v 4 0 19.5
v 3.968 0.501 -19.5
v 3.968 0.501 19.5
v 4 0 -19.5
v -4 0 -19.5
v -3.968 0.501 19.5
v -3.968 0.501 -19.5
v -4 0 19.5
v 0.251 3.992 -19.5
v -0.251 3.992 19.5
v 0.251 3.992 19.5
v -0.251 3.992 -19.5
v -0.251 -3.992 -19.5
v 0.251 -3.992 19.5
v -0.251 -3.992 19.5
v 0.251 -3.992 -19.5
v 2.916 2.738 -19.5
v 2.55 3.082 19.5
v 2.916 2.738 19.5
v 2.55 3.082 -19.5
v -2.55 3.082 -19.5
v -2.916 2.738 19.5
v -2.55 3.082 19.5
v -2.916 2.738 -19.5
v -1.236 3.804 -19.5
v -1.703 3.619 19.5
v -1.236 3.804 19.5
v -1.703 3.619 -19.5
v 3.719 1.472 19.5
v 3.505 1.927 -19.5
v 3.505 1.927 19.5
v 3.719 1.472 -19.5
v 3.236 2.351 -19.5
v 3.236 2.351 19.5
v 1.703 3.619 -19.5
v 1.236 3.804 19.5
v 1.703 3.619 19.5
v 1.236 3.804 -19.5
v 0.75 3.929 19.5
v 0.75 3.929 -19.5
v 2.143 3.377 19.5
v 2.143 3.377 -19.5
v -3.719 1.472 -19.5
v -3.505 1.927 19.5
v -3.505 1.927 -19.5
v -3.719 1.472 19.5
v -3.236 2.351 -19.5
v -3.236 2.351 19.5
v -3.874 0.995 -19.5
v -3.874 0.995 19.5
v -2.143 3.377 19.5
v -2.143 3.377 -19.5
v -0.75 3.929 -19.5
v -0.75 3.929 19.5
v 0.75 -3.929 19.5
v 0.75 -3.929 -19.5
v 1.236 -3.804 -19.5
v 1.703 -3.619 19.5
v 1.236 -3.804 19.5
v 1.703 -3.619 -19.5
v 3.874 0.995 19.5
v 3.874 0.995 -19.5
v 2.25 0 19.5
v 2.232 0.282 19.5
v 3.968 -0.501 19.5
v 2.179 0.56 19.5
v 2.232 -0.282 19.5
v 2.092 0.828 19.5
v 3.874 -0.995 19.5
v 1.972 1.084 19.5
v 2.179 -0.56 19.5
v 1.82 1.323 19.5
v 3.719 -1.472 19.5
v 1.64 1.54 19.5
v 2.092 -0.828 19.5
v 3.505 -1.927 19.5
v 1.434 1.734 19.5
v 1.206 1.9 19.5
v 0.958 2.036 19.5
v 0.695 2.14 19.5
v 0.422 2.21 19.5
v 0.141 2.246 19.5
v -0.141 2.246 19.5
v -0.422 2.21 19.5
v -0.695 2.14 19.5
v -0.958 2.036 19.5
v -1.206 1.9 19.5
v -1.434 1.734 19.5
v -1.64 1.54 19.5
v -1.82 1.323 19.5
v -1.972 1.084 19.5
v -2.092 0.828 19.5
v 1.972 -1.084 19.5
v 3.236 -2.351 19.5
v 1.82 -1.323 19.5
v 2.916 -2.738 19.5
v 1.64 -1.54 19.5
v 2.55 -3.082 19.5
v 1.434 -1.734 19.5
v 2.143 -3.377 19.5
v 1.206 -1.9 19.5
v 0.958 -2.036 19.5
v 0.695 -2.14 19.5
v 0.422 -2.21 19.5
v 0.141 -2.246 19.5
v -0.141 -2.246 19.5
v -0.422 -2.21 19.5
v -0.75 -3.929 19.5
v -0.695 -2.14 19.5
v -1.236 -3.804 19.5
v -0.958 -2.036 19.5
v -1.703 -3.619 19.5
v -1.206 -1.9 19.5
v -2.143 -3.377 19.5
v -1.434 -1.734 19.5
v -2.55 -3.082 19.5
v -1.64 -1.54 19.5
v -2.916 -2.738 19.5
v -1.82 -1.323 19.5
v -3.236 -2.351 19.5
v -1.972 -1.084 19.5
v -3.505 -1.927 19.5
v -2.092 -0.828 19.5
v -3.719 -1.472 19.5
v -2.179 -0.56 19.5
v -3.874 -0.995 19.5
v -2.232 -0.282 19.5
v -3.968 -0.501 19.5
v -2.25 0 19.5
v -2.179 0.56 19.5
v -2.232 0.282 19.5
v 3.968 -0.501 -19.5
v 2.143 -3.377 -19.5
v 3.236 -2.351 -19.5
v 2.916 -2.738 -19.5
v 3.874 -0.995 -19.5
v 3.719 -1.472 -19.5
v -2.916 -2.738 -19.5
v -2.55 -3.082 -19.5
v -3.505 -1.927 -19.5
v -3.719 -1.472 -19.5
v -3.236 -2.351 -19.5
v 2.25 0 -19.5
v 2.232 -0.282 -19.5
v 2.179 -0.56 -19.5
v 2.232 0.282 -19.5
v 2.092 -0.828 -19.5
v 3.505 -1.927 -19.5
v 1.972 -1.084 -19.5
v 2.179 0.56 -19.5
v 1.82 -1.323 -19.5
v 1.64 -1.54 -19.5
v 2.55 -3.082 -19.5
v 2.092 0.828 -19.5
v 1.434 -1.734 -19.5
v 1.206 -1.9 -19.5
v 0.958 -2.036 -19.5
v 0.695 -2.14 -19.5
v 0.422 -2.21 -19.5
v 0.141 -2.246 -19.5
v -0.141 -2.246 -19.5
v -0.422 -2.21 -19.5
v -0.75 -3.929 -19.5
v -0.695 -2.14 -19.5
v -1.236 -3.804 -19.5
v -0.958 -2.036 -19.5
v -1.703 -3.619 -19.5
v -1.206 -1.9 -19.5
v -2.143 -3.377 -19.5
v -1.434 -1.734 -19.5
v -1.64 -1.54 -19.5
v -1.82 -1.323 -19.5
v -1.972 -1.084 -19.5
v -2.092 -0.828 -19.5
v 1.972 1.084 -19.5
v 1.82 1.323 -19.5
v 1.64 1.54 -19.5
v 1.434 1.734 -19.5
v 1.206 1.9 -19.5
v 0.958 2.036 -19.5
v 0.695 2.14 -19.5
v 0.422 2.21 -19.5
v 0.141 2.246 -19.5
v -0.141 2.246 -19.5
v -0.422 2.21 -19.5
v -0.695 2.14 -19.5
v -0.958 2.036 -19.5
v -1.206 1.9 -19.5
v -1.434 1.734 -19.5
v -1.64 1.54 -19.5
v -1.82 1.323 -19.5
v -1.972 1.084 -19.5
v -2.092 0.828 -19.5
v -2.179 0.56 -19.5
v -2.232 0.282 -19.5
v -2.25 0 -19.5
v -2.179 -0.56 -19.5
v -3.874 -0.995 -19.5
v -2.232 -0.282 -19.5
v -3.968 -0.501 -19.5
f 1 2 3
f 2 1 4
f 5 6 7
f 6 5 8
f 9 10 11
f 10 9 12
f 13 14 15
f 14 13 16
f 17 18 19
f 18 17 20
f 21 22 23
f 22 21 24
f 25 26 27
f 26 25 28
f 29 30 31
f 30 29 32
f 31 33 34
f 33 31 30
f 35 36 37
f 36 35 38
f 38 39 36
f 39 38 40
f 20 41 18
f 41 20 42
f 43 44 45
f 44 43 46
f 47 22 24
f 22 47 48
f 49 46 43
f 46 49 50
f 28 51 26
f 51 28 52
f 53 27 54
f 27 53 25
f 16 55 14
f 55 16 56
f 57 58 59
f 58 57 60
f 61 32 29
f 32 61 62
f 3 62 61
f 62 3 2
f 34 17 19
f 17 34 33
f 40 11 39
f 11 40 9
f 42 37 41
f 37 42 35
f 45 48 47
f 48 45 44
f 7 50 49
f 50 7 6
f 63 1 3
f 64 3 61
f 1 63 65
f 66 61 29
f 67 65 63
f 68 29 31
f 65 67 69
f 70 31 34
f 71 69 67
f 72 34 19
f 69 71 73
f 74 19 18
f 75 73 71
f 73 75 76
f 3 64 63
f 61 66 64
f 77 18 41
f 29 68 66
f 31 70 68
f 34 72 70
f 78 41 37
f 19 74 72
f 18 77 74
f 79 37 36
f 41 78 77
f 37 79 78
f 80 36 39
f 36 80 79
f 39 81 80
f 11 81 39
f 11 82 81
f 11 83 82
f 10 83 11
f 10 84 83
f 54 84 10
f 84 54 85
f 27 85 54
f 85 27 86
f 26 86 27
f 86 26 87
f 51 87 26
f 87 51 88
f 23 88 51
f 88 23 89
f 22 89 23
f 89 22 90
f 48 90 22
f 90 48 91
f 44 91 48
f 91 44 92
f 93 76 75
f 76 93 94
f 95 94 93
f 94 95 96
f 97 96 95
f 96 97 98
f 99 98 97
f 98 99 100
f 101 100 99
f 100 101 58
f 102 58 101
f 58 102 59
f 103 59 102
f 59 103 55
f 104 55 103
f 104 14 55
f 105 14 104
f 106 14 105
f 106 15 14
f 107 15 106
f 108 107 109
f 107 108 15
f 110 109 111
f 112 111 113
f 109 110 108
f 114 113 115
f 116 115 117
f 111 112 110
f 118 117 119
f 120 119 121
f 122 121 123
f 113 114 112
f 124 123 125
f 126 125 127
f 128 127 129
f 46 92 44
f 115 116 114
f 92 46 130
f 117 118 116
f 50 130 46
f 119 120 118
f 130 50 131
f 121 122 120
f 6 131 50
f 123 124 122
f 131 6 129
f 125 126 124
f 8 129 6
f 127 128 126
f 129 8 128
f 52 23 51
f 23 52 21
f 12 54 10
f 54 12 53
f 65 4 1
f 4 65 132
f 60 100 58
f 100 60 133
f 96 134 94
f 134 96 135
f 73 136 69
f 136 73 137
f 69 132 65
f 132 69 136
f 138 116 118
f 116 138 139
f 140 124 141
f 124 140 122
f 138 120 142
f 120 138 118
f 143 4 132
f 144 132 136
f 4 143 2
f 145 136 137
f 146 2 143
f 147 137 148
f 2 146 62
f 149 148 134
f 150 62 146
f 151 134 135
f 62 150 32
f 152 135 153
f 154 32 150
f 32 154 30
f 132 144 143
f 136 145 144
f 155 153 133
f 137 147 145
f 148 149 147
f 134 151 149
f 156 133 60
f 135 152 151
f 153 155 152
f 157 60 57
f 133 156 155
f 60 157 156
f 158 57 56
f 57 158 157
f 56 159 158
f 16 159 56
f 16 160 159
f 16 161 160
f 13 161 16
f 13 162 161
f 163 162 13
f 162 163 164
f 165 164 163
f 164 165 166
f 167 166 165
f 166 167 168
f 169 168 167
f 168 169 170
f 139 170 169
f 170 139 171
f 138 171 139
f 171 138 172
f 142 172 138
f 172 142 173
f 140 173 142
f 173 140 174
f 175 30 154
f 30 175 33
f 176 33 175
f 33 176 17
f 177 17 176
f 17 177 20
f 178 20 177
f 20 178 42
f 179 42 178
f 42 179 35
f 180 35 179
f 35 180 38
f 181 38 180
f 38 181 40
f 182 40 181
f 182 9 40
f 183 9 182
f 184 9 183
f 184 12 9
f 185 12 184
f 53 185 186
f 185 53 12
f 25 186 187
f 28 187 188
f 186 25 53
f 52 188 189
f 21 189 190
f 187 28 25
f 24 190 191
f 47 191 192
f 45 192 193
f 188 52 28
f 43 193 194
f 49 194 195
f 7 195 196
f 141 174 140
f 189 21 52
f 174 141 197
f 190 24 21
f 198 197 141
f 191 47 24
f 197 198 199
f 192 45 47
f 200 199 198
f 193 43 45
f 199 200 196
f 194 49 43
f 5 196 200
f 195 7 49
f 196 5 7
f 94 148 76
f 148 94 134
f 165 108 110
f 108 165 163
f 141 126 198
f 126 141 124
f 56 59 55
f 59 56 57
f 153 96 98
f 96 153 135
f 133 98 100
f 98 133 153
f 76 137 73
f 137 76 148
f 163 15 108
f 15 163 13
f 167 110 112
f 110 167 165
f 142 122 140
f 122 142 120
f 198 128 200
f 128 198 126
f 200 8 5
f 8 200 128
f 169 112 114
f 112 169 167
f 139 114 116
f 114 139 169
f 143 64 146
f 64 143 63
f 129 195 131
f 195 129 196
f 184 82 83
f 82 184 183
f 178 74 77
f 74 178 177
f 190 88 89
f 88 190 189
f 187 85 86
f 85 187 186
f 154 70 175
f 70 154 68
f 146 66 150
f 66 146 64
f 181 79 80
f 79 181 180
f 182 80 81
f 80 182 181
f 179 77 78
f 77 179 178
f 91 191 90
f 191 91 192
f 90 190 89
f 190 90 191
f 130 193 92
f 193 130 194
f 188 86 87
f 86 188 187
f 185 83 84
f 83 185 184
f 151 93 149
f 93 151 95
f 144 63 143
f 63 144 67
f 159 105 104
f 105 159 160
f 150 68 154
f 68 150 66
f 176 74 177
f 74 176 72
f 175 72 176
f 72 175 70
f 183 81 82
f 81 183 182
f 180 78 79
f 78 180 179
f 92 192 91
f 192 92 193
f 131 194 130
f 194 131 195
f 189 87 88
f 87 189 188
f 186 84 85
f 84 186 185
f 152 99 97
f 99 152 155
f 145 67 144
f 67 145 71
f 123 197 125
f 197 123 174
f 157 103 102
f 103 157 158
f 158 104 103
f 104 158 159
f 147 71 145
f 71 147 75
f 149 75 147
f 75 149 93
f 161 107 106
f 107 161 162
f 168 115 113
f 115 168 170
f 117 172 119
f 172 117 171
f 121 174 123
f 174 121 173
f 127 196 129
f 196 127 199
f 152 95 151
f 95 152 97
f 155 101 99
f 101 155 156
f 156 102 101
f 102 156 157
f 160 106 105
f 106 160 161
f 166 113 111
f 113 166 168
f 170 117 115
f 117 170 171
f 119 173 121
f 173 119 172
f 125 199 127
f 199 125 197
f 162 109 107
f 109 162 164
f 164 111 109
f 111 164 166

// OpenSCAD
$fn = 50;


difference() {
	union() {
		translate(v = [0, 0, -19.5000000000]) {
			cylinder(h = 39, r = 4.0000000000);
		}
	}
	union() {
		translate(v = [0, 0, -100.0000000000]) {
			cylinder(h = 200, r = 2.2500000000);
		}
	}
}
